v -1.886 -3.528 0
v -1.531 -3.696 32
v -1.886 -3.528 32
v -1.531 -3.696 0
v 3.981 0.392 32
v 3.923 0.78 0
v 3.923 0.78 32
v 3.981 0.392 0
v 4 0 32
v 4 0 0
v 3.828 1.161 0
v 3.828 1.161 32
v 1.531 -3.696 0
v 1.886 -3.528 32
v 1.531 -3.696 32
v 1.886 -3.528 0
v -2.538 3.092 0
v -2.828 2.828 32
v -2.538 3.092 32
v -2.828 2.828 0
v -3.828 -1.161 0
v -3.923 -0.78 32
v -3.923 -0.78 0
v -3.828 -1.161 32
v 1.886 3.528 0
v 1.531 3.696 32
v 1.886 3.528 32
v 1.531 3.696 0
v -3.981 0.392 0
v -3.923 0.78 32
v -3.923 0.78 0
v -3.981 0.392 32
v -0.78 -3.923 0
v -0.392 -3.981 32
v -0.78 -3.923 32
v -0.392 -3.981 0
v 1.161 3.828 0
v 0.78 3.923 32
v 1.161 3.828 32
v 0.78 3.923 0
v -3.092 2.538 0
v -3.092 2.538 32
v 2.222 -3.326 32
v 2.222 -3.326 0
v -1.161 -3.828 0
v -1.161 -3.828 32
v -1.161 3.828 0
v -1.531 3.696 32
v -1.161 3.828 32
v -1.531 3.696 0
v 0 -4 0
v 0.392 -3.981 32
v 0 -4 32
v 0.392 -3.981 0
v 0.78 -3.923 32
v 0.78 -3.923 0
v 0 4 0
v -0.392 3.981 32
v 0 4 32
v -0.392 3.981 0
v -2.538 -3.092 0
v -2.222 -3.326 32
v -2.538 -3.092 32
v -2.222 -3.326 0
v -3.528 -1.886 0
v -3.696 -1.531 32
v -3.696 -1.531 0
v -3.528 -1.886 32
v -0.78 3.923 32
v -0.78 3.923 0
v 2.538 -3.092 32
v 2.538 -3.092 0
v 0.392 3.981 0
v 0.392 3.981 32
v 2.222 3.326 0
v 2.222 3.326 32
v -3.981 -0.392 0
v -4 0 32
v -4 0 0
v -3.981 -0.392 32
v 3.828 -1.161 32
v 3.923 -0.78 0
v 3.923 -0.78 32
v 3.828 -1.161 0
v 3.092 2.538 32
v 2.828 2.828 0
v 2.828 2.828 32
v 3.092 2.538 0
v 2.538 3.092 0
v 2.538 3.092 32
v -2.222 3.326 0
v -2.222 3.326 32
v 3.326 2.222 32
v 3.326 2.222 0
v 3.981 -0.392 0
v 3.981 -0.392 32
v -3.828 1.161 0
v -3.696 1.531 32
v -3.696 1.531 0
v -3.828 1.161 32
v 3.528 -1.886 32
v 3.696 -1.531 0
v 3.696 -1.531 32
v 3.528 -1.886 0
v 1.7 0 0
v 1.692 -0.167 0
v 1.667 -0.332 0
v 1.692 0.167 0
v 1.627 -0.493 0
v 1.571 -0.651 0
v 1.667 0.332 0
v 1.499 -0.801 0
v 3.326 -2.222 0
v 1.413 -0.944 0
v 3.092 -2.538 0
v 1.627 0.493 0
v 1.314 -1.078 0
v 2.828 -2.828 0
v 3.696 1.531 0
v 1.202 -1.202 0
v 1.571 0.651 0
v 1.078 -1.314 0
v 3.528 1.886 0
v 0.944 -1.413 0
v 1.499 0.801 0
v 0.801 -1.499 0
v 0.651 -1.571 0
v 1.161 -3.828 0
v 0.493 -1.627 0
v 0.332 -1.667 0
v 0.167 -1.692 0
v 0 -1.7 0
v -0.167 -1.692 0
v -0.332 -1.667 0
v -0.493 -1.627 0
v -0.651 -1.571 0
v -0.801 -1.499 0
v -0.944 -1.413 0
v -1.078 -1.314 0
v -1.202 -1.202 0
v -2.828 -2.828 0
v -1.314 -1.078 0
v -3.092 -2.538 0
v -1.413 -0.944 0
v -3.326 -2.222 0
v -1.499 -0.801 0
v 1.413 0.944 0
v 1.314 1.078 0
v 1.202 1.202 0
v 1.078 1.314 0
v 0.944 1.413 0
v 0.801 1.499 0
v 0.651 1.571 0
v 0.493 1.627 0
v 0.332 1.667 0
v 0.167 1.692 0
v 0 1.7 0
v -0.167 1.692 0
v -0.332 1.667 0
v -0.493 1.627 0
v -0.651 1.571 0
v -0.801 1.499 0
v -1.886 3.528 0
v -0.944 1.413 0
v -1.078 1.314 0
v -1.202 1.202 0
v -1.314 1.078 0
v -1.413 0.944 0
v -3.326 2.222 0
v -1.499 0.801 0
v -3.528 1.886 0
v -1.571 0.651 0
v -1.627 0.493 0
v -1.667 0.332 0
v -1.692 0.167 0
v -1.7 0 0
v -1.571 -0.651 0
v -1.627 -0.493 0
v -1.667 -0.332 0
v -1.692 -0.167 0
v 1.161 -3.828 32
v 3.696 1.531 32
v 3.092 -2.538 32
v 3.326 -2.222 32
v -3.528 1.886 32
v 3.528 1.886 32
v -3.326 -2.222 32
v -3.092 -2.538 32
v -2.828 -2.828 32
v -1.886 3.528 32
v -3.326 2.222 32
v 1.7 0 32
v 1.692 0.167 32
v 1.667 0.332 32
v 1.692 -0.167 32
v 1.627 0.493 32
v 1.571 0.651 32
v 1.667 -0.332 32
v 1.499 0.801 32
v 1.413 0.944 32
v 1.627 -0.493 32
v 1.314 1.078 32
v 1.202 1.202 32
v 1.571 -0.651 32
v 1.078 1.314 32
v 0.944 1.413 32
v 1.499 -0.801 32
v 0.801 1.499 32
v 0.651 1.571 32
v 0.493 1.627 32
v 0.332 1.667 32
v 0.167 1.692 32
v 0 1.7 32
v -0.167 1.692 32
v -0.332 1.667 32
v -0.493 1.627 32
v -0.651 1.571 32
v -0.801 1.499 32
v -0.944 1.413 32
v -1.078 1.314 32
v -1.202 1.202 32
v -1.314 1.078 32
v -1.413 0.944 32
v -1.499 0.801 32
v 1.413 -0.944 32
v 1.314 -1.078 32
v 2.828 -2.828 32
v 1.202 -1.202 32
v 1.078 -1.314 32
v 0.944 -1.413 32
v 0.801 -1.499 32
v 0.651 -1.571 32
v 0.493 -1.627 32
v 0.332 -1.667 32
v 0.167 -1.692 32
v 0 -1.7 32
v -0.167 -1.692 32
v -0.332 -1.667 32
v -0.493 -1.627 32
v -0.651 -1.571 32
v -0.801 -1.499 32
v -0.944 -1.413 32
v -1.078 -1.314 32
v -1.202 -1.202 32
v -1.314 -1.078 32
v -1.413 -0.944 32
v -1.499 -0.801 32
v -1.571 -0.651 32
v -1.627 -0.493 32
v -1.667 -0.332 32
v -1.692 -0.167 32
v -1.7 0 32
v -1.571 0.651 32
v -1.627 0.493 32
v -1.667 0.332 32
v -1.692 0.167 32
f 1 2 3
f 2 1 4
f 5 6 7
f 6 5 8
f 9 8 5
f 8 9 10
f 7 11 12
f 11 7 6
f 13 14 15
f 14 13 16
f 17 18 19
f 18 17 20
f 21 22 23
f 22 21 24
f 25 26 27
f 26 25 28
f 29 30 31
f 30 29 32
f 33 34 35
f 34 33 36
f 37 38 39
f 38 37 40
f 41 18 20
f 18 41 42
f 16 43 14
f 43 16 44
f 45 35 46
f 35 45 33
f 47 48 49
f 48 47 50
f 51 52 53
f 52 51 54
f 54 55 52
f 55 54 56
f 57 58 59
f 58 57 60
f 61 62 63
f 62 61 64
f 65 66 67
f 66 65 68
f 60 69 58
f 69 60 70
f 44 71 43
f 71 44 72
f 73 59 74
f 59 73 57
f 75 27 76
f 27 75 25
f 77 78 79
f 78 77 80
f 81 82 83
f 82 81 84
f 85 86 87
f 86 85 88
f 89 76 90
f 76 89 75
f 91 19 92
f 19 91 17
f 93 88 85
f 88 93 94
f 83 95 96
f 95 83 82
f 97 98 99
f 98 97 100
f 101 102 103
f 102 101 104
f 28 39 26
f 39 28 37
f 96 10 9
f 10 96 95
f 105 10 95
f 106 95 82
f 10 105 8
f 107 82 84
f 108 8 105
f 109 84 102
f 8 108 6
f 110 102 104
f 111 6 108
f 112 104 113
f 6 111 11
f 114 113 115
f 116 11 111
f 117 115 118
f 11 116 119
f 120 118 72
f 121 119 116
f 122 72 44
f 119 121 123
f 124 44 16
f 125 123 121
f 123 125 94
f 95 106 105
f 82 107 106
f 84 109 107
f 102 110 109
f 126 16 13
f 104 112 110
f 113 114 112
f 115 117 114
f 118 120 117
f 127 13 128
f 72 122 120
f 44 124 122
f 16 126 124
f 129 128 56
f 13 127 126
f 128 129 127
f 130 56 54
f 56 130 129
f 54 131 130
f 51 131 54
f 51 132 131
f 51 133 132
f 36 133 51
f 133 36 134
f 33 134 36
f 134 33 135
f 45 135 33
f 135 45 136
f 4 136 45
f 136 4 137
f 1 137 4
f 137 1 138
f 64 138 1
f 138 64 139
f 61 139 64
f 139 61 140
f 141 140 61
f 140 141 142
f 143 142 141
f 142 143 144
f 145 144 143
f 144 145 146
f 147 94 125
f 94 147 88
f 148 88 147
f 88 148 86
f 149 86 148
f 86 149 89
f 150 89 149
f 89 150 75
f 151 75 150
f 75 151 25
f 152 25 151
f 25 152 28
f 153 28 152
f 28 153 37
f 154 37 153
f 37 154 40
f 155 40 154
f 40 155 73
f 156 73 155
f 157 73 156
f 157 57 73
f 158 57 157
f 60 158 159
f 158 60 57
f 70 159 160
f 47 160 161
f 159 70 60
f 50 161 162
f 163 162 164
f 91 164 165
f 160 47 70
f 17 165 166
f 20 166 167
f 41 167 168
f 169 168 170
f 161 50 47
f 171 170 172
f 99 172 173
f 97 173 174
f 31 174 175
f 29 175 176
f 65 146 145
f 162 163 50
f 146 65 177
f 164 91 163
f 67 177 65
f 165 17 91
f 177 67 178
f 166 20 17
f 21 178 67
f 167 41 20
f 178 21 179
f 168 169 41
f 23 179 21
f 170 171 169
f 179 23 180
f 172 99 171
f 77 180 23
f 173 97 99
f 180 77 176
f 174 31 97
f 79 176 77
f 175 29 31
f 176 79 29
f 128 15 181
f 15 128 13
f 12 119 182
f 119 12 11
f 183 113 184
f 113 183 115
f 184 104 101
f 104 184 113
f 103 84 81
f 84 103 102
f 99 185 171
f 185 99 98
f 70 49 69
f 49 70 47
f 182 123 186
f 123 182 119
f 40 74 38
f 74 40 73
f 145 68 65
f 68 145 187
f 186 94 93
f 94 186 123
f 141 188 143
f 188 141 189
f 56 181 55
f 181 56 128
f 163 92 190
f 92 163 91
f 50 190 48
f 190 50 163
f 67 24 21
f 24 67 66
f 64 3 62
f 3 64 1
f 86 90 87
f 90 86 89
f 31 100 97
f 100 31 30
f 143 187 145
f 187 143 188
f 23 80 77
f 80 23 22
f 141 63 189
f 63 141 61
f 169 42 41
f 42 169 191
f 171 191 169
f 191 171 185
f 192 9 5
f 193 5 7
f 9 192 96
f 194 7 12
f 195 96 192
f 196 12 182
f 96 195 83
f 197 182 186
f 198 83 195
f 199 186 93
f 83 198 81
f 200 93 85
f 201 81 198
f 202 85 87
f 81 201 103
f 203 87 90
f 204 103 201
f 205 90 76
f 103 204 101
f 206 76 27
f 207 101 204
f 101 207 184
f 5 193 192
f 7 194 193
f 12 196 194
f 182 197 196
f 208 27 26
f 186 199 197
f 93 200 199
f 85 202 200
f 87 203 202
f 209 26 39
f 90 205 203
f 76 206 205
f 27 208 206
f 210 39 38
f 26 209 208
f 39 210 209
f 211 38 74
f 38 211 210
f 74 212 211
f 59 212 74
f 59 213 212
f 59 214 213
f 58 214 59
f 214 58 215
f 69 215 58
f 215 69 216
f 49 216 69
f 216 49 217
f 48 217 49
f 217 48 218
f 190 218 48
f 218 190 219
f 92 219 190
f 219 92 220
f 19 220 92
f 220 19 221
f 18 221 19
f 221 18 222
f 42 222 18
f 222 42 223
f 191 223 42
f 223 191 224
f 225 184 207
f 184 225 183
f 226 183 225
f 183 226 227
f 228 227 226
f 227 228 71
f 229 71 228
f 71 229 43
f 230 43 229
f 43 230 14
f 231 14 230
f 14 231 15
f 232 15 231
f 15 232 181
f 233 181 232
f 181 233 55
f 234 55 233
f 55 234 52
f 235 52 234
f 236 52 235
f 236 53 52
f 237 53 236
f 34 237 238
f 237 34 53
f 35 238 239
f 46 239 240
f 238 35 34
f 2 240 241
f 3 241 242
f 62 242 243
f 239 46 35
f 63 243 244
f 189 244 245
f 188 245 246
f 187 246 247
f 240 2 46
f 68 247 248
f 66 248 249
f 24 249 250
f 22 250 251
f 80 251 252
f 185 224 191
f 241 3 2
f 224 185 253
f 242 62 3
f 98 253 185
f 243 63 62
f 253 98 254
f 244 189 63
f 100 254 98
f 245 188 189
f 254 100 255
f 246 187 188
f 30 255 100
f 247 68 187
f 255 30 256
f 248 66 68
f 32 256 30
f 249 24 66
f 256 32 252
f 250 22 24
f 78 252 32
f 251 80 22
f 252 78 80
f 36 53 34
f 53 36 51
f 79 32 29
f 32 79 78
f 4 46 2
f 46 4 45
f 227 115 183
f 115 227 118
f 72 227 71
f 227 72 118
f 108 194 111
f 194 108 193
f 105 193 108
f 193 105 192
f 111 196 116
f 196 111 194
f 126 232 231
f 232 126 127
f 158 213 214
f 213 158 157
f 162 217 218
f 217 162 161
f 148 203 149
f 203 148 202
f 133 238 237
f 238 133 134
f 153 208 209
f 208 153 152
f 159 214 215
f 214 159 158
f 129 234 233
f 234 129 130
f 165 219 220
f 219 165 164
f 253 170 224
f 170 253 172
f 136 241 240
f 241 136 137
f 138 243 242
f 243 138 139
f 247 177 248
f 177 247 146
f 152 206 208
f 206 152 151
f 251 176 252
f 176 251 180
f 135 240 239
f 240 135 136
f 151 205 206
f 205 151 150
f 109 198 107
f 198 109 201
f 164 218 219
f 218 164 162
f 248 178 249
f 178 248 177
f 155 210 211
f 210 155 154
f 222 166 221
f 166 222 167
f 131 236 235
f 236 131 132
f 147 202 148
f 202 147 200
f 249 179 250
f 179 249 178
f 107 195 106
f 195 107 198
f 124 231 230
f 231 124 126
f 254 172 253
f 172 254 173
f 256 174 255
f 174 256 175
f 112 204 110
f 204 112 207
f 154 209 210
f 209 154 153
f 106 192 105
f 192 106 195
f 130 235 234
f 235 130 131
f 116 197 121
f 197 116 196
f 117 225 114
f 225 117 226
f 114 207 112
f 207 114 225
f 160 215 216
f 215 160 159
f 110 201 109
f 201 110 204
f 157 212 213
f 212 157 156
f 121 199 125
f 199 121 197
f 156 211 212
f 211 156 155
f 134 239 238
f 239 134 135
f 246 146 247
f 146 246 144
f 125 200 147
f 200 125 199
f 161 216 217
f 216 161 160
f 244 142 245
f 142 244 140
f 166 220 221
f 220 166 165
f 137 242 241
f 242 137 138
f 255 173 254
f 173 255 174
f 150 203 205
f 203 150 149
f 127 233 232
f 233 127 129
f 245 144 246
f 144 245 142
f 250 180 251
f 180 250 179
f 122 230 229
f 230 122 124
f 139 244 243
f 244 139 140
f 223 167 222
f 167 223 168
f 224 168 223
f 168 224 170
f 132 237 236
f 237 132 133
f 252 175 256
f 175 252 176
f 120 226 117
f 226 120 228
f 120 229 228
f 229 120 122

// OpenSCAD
// file: ../lib.scad
// Solar Rover - shared helper modules
include <config.scad>

// Rounded rectangle plate, centred in XY, sitting on Z=0.
module rbox(size, r=4) {
    x = size[0]; y = size[1]; z = size[2];
    hull() for (sx=[-1,1], sy=[-1,1])
        translate([sx*(x/2-r), sy*(y/2-r), 0]) cylinder(r=r, h=z);
}

// Vertical hole through everything (subtract). Centred on the origin.
module hole(d, h=200) { translate([0,0,-h/2]) cylinder(d=d, h=h); }

// Heat-set insert pocket opening upward at Z=top.
module insert_m3(top) { translate([0,0,top-m3_insert_h]) cylinder(d=m3_insert_d, h=m3_insert_h+0.01); }
module insert_m25(top) { translate([0,0,top-4.5]) cylinder(d=m25_insert_d, h=4.51); }

// Boss for an insert: cylinder from z0 to z1, with insert pocket at the top.
module insert_boss_m3(z0, z1, od=8) {
    difference() {
        translate([0,0,z0]) cylinder(d=od, h=z1-z0);
        insert_m3(z1);
    }
}

// Slot of length l (centre-to-centre) along X, diameter d.
module slot(l, d, h=200) {
    hull() for (sx=[-1,1]) translate([sx*l/2,0,-h/2]) cylinder(d=d, h=h);
}

// Counterbored M3 clearance hole, head at Z=top going down.
module m3_cbore(top, depth=m3_head_h) {
    hole(m3_clear);
    translate([0,0,top-depth]) cylinder(d=m3_head_d, h=depth+50);
}

// Captive hex nut pocket, opening at Z=z (nut goes in from that face).
module m3_nut_pocket(z, depth=m3_nut_h+0.4) {
    translate([0,0,z-depth]) cylinder(d=m3_nut_af/cos(30), h=depth+0.01, $fn=6);
}

// Pair of zip-tie slots (for modules without mounting holes), spaced s apart along X.
module zip_slots(s=30, w=4, l=2.2) {
    for (sx=[-1,1]) translate([sx*s/2,0,0]) cube([l, w, 50], center=true);
}

// D-shaped bore for TT motor shafts.
module d_bore(h=50, extra=0) {
    intersection() {
        cylinder(d=tt_shaft_d+extra, h=h);
        translate([-(tt_shaft_d+extra)/2, -(tt_shaft_flat+extra)/2, 0])
            cube([tt_shaft_d+extra, tt_shaft_flat+extra, h]);
    }
}

// Simple spur gear (trapezoid teeth), module m, z teeth, thickness t. Good enough
// for a slow servo gripper; not a precision involute.
module spur_gear(m=1.25, z=16, t=6, bore=0) {
    rp = m*z/2; ra = rp + m; rf = rp - 1.25*m;
    difference() {
        linear_extrude(t) union() {
            circle(r=rf, $fn=z*4);
            for (i=[0:z-1]) rotate(i*360/z)
                polygon([[rf*cos(-90/z*1.1), rf*sin(-90/z*1.1)],
                         [ra*cos(-90/z*0.45), ra*sin(-90/z*0.45)],
                         [ra*cos( 90/z*0.45), ra*sin( 90/z*0.45)],
                         [rf*cos( 90/z*1.1), rf*sin( 90/z*1.1)]]);
        }
        if (bore > 0) hole(bore);
    }
}

// Servo pocket for an MG996R lying with its output axis along +Z.
// Case centred so the OUTPUT SHAFT is at the origin; case top at Z=0.
module mg996_case_neg(extra=tol) {
    translate([-mg996_shaft_off-extra, -mg996_w/2-extra, -mg996_h-extra])
        cube([mg996_l+2*extra, mg996_w+2*extra, mg996_h+extra+0.01]);
}
module mg996_flange_holes(d=m3_clear, h=60) {
    cx = mg996_l/2 - mg996_shaft_off;
    for (sx=[-1,1], sy=[-1,1])
        translate([cx+sx*mg996_hole_dx/2, sy*mg996_hole_dy/2, -h/2]) cylinder(d=d, h=h);
}
module mg90_case_neg(extra=tol) {
    translate([-mg90_shaft_off-extra, -mg90_w/2-extra, -mg90_h-extra])
        cube([mg90_l+2*extra, mg90_w+2*extra, mg90_h+extra+0.01]);
}
module mg90_flange_holes(d=m2_pilot, h=60) {
    cx = mg90_l/2 - mg90_shaft_off;
    for (sx=[-1,1]) translate([cx+sx*mg90_hole_dx/2, 0, -h/2]) cylinder(d=d, h=h);
}
// Round MG996R horn screw pattern (4 holes) + centre relief.
module mg996_horn_holes(d=m3_clear) {
    hole(9);
    for (a=[0:90:270]) rotate(a) translate([mg996_horn_hole_r,0,0]) hole(d);
}
// file: ../config.scad
// Solar Rover - shared dimensions (all mm)
// Coordinate system: X = forward, Y = left, Z = up. Origin = deck centre, ground at Z=0.
//
// Values marked MEASURE come from typical datasheets/clones and vary between
// suppliers. Measure your parts with calipers and edit them here before printing;
// every part reads its dimensions from this file.

$fn = 64;

// ---------- print / fit ----------
tol        = 0.25;   // general clearance per side
wall       = 2.4;    // default wall (6 perimeters at 0.4 mm nozzle)

// ---------- fasteners ----------
m3_clear     = 3.4;   // M3 clearance hole
m3_insert_d  = 4.1;   // hole for M3x5x4 brass heat-set insert (OD ~4.6)
m3_insert_h  = 5.5;   // insert hole depth
m3_head_d    = 6.2;   // socket head counterbore
m3_head_h    = 3.2;
m3_nut_af    = 5.6;   // nut across flats (+clearance)
m3_nut_h     = 2.6;
m25_clear    = 2.9;
m25_insert_d = 3.5;   // M2.5 insert hole (OD ~4.0)
m2_clear     = 2.4;
m2_pilot     = 1.7;   // pilot hole for M2 thread-forming screw

// ---------- deck ----------
deck_l     = 300;     // printed as two 150 mm halves
deck_w     = 146;
deck_t     = 4;
rib_h      = 8;
rib_w      = 2.4;
flange_h   = 14;      // joint flange (bolts the halves together)
flange_t   = 5;

// ---------- drive ----------
wheel_d       = 65;
wheel_w       = 26;
axle_z        = wheel_d/2;    // axle height above ground
axle_x        = 100;          // front axle at +axle_x, rear at -axle_x
// TT gear motor (dual-shaft, 1:48). MEASURE.
tt_body_l     = 64;           // along X (gearbox + motor can)
tt_body_t     = 22.5;         // along Y (shaft direction)
tt_body_h     = 18.8;         // along Z
tt_shaft_from_end = 11.3;     // shaft centre to gearbox front end
tt_shaft_d    = 5.4;          // D-shaft across round
tt_shaft_flat = 3.7;          // D-shaft across flats
tt_shaft_len  = 9;            // per side, beyond the body face
// two through-holes parallel to the shaft, positions relative to shaft centre [x, z]. MEASURE.
tt_holes      = [[-20.0, 5.5], [-20.0, -5.5]];
motor_outer_y = 72;           // motor face nearest the wheel
clamp_t       = 3;            // clamp plate thickness
deck_bottom_z = axle_z + tt_body_h/2 + clamp_t;   // 44.6
deck_top_z    = deck_bottom_z + deck_t;

// ---------- encoder ----------
enc_slots   = 20;
enc_disc_d  = 22;
enc_disc_t  = 1.6;

// ---------- turret / arm ----------
turret_x      = 108;
turret_d      = 84;           // base OD; top plate skirt overlaps it
turret_h      = 48;           // fixed base height above deck (servo hangs inside)
turret_deck_r = 30;           // 4x M3 at 45/135/225/315 deg: turret base to deck
turret_bolts  = [[20,28],[-20,28],[20,-28],[-20,-28]];  // module interface on the turret top (4x M3)
shoulder_z    = 45;           // shoulder axis above the turret top plate
// MG996R servo. MEASURE.
mg996_l   = 40.7;  mg996_w = 19.7;  mg996_h = 37.0;   // case (h = to top of case)
mg996_flange_l = 54.5; mg996_flange_z = 27.5;  mg996_flange_t = 2.5;
mg996_hole_dx = 49.5; mg996_hole_dy = 10.0; mg996_hole_d = 4.5;
mg996_shaft_off = 10.0;       // output shaft centre from case end
mg996_spline_h  = 6.0;        // case top to horn face
mg996_horn_d    = 22;         // round metal horn
mg996_horn_hole_r = 7.5;      // horn screw circle radius (MEASURE: usually 4 holes)
// MG90S servo. MEASURE.
mg90_l = 22.8; mg90_w = 12.2; mg90_h = 22.7;
mg90_flange_l = 32.5; mg90_flange_z = 16.0; mg90_flange_t = 2.5;
mg90_hole_dx = 27.6; mg90_hole_d = 2.0;
mg90_shaft_off = 6.0;
mg90_spline_h = 5.0;
mg90_horn_d = 7;              // horn hub (single-arm horn)

link_upper = 100;   // shoulder -> elbow
link_fore  = 90;    // elbow -> wrist
link_hand  = 70;    // wrist -> fingertip

// ---------- power / electronics ----------
cell_holder = [77, 80, 21];   // 4x18650 holder footprint. MEASURE.
pi0_holes   = [58, 23];       // Raspberry Pi Zero 2 W, M2.5
pca_holes   = [55.9, 19.0];   // Adafruit-style PCA9685, M2.5. MEASURE (clones vary)
esp_exp_holes = [47, 70];     // ESP32 38-pin screw-terminal expansion board (77x54 mm), M3. MEASURE.
cradle_tb6612 = [20.5, 20.5];  // TB6612FNG breakout board outline. MEASURE.
cradle_mp1584 = [22.4, 17.0];  // MP1584 mini buck outline. MEASURE.
module_slot_w = 2.6;          // module-plate slots: M2/M2.5 screw + nut, or a 2.5 mm zip tie
tray_standoff_h = 32;         // power tray top to logic tray underside
// charge tray: a slotted plate on 4 legs over the battery holder
charge_tray_c    = [-106, 0];         // centre on the deck (same as the battery holder)
charge_tray_size = [76, 102];         // X, Y
charge_tray_z    = 24;                // deck top to plate underside (holder is 21 mm tall)
charge_tray_legs = [for (x=[-34,28], sy=[-1,1]) [x, sy*46]];   // relative to the centre; the front pair clears the motor-clamp inserts

// ---------- body / solar ----------
panel     = [110, 136, 3];    // 6V 2W panel: X, Y, thickness. MEASURE.
roof_post_h = 75;             // deck top to roof tray underside (room for plugged-in jumpers)
tray_frame  = 4;
roof_front_x = 60;            // front tray spans -60..60, rear tray -180..-60
// main file
// Tray standoff (print 4): the logic tray sits tray_standoff_h (32 mm) above the
// power tray, which leaves room for the jumpers plugged into the power modules.
include <../config.scad>
use <../lib.scad>
difference() { cylinder(d=8, h=tray_standoff_h); hole(m3_clear); }
